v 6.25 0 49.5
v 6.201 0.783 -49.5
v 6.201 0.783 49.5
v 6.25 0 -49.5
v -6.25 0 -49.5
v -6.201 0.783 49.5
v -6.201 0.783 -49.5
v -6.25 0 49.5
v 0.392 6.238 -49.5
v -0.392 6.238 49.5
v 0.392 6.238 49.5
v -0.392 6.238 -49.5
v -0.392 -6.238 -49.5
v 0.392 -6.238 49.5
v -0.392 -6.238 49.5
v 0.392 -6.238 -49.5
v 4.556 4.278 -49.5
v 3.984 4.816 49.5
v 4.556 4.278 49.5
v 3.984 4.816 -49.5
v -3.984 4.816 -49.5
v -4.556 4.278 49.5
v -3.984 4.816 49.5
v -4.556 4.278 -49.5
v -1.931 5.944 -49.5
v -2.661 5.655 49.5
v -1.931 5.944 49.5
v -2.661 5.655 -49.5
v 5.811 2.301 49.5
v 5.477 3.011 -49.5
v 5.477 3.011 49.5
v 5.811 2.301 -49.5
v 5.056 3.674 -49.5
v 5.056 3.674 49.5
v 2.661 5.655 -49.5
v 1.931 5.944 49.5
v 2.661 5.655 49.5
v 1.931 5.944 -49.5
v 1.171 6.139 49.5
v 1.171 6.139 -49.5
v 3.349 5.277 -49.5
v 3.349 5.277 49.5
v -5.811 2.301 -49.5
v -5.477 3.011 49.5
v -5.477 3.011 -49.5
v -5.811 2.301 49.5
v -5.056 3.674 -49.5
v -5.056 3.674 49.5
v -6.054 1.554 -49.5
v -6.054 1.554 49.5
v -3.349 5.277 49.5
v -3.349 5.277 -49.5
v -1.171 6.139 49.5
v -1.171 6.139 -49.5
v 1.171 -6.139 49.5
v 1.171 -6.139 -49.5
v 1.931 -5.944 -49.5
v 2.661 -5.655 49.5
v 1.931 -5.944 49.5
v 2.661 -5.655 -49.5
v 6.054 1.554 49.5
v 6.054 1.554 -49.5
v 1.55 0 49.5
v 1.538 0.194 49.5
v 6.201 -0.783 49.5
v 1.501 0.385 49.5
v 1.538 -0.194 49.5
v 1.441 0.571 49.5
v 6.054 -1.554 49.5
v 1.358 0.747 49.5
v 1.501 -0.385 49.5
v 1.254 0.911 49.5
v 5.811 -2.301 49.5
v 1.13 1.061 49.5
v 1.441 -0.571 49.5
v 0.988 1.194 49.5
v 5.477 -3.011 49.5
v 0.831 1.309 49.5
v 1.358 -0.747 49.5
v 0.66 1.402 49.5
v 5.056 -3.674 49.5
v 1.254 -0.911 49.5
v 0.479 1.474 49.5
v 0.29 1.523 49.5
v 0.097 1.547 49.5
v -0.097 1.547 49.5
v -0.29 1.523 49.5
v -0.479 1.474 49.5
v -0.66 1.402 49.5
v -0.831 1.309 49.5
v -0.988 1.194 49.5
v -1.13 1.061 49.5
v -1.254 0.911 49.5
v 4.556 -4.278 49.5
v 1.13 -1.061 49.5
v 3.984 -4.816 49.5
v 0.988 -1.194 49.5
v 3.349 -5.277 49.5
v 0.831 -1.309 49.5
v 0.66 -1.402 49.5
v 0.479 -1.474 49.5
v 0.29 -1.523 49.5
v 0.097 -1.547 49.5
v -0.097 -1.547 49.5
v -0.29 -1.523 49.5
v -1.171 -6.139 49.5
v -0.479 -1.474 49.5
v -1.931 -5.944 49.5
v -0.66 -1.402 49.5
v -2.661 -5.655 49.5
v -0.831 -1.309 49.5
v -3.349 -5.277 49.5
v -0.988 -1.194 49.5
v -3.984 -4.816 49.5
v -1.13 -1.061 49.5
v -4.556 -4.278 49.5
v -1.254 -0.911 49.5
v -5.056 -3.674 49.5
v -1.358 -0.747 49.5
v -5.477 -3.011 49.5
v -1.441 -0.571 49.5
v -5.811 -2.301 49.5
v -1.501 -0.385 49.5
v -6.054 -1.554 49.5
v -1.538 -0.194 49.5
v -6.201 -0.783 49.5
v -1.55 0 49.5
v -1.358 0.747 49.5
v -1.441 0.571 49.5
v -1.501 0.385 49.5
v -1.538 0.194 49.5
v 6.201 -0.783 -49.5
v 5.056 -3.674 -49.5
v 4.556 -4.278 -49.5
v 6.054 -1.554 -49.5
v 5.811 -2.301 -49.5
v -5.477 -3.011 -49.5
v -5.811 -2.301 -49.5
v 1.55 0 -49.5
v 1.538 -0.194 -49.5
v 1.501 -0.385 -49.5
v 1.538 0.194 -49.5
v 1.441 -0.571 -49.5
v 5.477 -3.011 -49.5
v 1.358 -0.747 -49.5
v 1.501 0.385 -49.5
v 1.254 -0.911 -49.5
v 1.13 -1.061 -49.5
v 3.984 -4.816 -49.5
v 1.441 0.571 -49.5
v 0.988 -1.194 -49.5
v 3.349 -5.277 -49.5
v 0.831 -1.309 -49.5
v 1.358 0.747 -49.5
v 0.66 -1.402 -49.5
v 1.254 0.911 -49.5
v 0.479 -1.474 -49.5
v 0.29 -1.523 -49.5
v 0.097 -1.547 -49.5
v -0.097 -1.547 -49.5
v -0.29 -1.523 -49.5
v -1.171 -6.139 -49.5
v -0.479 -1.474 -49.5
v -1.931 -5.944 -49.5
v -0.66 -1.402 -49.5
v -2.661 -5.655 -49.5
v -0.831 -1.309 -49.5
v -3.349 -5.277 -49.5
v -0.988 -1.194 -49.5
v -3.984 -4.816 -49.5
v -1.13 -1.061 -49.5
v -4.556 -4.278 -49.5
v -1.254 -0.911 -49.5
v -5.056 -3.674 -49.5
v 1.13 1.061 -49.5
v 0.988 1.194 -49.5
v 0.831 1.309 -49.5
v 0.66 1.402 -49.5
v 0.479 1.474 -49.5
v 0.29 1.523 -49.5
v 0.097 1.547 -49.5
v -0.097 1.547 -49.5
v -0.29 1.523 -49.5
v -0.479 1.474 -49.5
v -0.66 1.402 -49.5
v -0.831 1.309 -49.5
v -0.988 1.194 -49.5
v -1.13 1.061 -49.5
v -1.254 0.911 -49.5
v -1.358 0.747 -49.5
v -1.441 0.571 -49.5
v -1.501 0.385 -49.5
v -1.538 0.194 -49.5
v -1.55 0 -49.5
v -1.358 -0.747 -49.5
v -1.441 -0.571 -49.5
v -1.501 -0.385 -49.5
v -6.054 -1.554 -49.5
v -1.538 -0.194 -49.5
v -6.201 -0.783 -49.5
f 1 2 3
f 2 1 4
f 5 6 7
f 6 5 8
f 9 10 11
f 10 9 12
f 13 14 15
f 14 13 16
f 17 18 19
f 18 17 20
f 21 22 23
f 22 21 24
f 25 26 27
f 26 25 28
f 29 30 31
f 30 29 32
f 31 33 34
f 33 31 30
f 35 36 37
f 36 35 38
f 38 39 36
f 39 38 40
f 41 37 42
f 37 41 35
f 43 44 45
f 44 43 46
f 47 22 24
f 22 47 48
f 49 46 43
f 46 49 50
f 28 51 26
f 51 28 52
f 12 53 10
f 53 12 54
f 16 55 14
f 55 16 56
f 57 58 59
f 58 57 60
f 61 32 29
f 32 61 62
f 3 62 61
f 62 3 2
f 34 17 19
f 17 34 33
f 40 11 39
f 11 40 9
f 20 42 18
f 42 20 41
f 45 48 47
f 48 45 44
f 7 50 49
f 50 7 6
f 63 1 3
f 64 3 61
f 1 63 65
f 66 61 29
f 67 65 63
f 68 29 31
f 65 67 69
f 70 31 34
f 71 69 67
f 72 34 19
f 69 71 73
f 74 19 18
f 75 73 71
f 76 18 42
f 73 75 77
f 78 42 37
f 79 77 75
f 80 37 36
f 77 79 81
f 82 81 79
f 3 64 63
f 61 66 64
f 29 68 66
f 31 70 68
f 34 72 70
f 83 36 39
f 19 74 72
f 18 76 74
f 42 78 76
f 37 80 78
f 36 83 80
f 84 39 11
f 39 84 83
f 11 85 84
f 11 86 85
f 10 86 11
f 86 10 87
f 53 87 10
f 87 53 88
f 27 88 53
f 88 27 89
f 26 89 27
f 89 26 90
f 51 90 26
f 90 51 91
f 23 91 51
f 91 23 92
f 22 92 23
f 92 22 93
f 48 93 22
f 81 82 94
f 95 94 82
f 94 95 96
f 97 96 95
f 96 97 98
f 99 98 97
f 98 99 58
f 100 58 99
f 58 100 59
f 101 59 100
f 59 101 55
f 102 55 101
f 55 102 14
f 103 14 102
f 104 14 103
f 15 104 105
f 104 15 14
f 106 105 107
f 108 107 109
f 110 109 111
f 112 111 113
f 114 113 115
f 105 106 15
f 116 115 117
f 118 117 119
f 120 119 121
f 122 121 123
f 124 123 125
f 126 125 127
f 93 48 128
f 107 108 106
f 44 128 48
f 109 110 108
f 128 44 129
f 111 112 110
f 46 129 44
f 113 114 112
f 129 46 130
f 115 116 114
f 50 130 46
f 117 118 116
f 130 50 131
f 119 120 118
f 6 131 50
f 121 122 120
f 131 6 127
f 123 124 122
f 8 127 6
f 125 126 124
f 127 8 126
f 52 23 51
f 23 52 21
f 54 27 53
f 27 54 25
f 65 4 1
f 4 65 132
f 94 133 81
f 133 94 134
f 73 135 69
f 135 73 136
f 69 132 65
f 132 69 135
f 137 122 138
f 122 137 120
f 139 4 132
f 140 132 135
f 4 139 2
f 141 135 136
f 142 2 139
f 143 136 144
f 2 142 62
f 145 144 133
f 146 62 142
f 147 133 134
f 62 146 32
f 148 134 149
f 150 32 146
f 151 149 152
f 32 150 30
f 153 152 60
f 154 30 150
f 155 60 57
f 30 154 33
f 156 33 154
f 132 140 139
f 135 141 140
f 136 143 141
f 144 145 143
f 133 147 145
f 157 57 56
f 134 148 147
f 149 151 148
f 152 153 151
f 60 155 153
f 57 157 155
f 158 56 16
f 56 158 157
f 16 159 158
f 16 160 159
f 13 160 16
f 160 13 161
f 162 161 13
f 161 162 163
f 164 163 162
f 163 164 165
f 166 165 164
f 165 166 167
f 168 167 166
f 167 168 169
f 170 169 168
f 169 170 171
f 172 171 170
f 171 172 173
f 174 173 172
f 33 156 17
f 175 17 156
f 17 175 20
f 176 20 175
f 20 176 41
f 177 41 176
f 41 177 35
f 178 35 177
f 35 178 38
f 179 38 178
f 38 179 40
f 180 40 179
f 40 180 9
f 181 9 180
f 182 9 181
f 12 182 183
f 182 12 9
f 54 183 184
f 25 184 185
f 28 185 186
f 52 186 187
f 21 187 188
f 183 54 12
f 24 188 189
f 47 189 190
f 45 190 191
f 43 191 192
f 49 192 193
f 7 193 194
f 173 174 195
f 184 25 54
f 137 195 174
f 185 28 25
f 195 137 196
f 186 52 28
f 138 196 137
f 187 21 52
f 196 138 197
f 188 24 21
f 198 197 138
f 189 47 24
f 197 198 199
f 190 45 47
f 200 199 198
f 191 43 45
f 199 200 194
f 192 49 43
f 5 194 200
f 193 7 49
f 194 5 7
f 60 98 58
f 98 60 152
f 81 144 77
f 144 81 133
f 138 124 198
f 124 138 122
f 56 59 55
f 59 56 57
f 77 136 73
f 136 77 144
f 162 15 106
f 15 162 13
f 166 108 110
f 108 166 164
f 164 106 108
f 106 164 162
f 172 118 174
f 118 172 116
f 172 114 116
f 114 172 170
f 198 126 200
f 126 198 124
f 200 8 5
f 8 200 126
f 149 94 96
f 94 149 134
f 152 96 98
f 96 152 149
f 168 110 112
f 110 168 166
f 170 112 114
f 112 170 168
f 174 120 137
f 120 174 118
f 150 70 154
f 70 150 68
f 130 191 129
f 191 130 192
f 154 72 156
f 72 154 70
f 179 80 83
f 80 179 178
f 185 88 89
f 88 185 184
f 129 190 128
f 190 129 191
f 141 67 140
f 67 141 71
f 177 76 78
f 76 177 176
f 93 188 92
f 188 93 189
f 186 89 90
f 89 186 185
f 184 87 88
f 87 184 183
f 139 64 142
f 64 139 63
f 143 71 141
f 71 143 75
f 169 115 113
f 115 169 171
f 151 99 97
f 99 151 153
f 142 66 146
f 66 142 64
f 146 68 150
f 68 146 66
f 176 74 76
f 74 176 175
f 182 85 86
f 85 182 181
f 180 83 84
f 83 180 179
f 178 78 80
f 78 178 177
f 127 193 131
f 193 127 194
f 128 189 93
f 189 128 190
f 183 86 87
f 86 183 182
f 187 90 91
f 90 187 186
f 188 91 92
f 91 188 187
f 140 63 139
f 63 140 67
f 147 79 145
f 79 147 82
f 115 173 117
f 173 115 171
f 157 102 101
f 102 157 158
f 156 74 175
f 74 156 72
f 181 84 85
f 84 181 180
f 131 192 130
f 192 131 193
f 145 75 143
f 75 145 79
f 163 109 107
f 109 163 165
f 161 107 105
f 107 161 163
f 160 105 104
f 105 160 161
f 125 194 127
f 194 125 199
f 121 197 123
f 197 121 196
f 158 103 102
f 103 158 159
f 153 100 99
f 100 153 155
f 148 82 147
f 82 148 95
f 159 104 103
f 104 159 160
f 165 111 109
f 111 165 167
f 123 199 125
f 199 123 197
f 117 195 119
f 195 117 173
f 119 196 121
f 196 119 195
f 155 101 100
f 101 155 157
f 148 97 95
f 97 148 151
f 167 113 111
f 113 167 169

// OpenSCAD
$fn = 50;


difference() {
	union() {
		translate(v = [0, 0, -49.5000000000]) {
			cylinder(h = 99, r = 6.2500000000);
		}
	}
	union() {
		translate(v = [0, 0, -100.0000000000]) {
			cylinder(h = 200, r = 1.5500000000);
		}
	}
}
